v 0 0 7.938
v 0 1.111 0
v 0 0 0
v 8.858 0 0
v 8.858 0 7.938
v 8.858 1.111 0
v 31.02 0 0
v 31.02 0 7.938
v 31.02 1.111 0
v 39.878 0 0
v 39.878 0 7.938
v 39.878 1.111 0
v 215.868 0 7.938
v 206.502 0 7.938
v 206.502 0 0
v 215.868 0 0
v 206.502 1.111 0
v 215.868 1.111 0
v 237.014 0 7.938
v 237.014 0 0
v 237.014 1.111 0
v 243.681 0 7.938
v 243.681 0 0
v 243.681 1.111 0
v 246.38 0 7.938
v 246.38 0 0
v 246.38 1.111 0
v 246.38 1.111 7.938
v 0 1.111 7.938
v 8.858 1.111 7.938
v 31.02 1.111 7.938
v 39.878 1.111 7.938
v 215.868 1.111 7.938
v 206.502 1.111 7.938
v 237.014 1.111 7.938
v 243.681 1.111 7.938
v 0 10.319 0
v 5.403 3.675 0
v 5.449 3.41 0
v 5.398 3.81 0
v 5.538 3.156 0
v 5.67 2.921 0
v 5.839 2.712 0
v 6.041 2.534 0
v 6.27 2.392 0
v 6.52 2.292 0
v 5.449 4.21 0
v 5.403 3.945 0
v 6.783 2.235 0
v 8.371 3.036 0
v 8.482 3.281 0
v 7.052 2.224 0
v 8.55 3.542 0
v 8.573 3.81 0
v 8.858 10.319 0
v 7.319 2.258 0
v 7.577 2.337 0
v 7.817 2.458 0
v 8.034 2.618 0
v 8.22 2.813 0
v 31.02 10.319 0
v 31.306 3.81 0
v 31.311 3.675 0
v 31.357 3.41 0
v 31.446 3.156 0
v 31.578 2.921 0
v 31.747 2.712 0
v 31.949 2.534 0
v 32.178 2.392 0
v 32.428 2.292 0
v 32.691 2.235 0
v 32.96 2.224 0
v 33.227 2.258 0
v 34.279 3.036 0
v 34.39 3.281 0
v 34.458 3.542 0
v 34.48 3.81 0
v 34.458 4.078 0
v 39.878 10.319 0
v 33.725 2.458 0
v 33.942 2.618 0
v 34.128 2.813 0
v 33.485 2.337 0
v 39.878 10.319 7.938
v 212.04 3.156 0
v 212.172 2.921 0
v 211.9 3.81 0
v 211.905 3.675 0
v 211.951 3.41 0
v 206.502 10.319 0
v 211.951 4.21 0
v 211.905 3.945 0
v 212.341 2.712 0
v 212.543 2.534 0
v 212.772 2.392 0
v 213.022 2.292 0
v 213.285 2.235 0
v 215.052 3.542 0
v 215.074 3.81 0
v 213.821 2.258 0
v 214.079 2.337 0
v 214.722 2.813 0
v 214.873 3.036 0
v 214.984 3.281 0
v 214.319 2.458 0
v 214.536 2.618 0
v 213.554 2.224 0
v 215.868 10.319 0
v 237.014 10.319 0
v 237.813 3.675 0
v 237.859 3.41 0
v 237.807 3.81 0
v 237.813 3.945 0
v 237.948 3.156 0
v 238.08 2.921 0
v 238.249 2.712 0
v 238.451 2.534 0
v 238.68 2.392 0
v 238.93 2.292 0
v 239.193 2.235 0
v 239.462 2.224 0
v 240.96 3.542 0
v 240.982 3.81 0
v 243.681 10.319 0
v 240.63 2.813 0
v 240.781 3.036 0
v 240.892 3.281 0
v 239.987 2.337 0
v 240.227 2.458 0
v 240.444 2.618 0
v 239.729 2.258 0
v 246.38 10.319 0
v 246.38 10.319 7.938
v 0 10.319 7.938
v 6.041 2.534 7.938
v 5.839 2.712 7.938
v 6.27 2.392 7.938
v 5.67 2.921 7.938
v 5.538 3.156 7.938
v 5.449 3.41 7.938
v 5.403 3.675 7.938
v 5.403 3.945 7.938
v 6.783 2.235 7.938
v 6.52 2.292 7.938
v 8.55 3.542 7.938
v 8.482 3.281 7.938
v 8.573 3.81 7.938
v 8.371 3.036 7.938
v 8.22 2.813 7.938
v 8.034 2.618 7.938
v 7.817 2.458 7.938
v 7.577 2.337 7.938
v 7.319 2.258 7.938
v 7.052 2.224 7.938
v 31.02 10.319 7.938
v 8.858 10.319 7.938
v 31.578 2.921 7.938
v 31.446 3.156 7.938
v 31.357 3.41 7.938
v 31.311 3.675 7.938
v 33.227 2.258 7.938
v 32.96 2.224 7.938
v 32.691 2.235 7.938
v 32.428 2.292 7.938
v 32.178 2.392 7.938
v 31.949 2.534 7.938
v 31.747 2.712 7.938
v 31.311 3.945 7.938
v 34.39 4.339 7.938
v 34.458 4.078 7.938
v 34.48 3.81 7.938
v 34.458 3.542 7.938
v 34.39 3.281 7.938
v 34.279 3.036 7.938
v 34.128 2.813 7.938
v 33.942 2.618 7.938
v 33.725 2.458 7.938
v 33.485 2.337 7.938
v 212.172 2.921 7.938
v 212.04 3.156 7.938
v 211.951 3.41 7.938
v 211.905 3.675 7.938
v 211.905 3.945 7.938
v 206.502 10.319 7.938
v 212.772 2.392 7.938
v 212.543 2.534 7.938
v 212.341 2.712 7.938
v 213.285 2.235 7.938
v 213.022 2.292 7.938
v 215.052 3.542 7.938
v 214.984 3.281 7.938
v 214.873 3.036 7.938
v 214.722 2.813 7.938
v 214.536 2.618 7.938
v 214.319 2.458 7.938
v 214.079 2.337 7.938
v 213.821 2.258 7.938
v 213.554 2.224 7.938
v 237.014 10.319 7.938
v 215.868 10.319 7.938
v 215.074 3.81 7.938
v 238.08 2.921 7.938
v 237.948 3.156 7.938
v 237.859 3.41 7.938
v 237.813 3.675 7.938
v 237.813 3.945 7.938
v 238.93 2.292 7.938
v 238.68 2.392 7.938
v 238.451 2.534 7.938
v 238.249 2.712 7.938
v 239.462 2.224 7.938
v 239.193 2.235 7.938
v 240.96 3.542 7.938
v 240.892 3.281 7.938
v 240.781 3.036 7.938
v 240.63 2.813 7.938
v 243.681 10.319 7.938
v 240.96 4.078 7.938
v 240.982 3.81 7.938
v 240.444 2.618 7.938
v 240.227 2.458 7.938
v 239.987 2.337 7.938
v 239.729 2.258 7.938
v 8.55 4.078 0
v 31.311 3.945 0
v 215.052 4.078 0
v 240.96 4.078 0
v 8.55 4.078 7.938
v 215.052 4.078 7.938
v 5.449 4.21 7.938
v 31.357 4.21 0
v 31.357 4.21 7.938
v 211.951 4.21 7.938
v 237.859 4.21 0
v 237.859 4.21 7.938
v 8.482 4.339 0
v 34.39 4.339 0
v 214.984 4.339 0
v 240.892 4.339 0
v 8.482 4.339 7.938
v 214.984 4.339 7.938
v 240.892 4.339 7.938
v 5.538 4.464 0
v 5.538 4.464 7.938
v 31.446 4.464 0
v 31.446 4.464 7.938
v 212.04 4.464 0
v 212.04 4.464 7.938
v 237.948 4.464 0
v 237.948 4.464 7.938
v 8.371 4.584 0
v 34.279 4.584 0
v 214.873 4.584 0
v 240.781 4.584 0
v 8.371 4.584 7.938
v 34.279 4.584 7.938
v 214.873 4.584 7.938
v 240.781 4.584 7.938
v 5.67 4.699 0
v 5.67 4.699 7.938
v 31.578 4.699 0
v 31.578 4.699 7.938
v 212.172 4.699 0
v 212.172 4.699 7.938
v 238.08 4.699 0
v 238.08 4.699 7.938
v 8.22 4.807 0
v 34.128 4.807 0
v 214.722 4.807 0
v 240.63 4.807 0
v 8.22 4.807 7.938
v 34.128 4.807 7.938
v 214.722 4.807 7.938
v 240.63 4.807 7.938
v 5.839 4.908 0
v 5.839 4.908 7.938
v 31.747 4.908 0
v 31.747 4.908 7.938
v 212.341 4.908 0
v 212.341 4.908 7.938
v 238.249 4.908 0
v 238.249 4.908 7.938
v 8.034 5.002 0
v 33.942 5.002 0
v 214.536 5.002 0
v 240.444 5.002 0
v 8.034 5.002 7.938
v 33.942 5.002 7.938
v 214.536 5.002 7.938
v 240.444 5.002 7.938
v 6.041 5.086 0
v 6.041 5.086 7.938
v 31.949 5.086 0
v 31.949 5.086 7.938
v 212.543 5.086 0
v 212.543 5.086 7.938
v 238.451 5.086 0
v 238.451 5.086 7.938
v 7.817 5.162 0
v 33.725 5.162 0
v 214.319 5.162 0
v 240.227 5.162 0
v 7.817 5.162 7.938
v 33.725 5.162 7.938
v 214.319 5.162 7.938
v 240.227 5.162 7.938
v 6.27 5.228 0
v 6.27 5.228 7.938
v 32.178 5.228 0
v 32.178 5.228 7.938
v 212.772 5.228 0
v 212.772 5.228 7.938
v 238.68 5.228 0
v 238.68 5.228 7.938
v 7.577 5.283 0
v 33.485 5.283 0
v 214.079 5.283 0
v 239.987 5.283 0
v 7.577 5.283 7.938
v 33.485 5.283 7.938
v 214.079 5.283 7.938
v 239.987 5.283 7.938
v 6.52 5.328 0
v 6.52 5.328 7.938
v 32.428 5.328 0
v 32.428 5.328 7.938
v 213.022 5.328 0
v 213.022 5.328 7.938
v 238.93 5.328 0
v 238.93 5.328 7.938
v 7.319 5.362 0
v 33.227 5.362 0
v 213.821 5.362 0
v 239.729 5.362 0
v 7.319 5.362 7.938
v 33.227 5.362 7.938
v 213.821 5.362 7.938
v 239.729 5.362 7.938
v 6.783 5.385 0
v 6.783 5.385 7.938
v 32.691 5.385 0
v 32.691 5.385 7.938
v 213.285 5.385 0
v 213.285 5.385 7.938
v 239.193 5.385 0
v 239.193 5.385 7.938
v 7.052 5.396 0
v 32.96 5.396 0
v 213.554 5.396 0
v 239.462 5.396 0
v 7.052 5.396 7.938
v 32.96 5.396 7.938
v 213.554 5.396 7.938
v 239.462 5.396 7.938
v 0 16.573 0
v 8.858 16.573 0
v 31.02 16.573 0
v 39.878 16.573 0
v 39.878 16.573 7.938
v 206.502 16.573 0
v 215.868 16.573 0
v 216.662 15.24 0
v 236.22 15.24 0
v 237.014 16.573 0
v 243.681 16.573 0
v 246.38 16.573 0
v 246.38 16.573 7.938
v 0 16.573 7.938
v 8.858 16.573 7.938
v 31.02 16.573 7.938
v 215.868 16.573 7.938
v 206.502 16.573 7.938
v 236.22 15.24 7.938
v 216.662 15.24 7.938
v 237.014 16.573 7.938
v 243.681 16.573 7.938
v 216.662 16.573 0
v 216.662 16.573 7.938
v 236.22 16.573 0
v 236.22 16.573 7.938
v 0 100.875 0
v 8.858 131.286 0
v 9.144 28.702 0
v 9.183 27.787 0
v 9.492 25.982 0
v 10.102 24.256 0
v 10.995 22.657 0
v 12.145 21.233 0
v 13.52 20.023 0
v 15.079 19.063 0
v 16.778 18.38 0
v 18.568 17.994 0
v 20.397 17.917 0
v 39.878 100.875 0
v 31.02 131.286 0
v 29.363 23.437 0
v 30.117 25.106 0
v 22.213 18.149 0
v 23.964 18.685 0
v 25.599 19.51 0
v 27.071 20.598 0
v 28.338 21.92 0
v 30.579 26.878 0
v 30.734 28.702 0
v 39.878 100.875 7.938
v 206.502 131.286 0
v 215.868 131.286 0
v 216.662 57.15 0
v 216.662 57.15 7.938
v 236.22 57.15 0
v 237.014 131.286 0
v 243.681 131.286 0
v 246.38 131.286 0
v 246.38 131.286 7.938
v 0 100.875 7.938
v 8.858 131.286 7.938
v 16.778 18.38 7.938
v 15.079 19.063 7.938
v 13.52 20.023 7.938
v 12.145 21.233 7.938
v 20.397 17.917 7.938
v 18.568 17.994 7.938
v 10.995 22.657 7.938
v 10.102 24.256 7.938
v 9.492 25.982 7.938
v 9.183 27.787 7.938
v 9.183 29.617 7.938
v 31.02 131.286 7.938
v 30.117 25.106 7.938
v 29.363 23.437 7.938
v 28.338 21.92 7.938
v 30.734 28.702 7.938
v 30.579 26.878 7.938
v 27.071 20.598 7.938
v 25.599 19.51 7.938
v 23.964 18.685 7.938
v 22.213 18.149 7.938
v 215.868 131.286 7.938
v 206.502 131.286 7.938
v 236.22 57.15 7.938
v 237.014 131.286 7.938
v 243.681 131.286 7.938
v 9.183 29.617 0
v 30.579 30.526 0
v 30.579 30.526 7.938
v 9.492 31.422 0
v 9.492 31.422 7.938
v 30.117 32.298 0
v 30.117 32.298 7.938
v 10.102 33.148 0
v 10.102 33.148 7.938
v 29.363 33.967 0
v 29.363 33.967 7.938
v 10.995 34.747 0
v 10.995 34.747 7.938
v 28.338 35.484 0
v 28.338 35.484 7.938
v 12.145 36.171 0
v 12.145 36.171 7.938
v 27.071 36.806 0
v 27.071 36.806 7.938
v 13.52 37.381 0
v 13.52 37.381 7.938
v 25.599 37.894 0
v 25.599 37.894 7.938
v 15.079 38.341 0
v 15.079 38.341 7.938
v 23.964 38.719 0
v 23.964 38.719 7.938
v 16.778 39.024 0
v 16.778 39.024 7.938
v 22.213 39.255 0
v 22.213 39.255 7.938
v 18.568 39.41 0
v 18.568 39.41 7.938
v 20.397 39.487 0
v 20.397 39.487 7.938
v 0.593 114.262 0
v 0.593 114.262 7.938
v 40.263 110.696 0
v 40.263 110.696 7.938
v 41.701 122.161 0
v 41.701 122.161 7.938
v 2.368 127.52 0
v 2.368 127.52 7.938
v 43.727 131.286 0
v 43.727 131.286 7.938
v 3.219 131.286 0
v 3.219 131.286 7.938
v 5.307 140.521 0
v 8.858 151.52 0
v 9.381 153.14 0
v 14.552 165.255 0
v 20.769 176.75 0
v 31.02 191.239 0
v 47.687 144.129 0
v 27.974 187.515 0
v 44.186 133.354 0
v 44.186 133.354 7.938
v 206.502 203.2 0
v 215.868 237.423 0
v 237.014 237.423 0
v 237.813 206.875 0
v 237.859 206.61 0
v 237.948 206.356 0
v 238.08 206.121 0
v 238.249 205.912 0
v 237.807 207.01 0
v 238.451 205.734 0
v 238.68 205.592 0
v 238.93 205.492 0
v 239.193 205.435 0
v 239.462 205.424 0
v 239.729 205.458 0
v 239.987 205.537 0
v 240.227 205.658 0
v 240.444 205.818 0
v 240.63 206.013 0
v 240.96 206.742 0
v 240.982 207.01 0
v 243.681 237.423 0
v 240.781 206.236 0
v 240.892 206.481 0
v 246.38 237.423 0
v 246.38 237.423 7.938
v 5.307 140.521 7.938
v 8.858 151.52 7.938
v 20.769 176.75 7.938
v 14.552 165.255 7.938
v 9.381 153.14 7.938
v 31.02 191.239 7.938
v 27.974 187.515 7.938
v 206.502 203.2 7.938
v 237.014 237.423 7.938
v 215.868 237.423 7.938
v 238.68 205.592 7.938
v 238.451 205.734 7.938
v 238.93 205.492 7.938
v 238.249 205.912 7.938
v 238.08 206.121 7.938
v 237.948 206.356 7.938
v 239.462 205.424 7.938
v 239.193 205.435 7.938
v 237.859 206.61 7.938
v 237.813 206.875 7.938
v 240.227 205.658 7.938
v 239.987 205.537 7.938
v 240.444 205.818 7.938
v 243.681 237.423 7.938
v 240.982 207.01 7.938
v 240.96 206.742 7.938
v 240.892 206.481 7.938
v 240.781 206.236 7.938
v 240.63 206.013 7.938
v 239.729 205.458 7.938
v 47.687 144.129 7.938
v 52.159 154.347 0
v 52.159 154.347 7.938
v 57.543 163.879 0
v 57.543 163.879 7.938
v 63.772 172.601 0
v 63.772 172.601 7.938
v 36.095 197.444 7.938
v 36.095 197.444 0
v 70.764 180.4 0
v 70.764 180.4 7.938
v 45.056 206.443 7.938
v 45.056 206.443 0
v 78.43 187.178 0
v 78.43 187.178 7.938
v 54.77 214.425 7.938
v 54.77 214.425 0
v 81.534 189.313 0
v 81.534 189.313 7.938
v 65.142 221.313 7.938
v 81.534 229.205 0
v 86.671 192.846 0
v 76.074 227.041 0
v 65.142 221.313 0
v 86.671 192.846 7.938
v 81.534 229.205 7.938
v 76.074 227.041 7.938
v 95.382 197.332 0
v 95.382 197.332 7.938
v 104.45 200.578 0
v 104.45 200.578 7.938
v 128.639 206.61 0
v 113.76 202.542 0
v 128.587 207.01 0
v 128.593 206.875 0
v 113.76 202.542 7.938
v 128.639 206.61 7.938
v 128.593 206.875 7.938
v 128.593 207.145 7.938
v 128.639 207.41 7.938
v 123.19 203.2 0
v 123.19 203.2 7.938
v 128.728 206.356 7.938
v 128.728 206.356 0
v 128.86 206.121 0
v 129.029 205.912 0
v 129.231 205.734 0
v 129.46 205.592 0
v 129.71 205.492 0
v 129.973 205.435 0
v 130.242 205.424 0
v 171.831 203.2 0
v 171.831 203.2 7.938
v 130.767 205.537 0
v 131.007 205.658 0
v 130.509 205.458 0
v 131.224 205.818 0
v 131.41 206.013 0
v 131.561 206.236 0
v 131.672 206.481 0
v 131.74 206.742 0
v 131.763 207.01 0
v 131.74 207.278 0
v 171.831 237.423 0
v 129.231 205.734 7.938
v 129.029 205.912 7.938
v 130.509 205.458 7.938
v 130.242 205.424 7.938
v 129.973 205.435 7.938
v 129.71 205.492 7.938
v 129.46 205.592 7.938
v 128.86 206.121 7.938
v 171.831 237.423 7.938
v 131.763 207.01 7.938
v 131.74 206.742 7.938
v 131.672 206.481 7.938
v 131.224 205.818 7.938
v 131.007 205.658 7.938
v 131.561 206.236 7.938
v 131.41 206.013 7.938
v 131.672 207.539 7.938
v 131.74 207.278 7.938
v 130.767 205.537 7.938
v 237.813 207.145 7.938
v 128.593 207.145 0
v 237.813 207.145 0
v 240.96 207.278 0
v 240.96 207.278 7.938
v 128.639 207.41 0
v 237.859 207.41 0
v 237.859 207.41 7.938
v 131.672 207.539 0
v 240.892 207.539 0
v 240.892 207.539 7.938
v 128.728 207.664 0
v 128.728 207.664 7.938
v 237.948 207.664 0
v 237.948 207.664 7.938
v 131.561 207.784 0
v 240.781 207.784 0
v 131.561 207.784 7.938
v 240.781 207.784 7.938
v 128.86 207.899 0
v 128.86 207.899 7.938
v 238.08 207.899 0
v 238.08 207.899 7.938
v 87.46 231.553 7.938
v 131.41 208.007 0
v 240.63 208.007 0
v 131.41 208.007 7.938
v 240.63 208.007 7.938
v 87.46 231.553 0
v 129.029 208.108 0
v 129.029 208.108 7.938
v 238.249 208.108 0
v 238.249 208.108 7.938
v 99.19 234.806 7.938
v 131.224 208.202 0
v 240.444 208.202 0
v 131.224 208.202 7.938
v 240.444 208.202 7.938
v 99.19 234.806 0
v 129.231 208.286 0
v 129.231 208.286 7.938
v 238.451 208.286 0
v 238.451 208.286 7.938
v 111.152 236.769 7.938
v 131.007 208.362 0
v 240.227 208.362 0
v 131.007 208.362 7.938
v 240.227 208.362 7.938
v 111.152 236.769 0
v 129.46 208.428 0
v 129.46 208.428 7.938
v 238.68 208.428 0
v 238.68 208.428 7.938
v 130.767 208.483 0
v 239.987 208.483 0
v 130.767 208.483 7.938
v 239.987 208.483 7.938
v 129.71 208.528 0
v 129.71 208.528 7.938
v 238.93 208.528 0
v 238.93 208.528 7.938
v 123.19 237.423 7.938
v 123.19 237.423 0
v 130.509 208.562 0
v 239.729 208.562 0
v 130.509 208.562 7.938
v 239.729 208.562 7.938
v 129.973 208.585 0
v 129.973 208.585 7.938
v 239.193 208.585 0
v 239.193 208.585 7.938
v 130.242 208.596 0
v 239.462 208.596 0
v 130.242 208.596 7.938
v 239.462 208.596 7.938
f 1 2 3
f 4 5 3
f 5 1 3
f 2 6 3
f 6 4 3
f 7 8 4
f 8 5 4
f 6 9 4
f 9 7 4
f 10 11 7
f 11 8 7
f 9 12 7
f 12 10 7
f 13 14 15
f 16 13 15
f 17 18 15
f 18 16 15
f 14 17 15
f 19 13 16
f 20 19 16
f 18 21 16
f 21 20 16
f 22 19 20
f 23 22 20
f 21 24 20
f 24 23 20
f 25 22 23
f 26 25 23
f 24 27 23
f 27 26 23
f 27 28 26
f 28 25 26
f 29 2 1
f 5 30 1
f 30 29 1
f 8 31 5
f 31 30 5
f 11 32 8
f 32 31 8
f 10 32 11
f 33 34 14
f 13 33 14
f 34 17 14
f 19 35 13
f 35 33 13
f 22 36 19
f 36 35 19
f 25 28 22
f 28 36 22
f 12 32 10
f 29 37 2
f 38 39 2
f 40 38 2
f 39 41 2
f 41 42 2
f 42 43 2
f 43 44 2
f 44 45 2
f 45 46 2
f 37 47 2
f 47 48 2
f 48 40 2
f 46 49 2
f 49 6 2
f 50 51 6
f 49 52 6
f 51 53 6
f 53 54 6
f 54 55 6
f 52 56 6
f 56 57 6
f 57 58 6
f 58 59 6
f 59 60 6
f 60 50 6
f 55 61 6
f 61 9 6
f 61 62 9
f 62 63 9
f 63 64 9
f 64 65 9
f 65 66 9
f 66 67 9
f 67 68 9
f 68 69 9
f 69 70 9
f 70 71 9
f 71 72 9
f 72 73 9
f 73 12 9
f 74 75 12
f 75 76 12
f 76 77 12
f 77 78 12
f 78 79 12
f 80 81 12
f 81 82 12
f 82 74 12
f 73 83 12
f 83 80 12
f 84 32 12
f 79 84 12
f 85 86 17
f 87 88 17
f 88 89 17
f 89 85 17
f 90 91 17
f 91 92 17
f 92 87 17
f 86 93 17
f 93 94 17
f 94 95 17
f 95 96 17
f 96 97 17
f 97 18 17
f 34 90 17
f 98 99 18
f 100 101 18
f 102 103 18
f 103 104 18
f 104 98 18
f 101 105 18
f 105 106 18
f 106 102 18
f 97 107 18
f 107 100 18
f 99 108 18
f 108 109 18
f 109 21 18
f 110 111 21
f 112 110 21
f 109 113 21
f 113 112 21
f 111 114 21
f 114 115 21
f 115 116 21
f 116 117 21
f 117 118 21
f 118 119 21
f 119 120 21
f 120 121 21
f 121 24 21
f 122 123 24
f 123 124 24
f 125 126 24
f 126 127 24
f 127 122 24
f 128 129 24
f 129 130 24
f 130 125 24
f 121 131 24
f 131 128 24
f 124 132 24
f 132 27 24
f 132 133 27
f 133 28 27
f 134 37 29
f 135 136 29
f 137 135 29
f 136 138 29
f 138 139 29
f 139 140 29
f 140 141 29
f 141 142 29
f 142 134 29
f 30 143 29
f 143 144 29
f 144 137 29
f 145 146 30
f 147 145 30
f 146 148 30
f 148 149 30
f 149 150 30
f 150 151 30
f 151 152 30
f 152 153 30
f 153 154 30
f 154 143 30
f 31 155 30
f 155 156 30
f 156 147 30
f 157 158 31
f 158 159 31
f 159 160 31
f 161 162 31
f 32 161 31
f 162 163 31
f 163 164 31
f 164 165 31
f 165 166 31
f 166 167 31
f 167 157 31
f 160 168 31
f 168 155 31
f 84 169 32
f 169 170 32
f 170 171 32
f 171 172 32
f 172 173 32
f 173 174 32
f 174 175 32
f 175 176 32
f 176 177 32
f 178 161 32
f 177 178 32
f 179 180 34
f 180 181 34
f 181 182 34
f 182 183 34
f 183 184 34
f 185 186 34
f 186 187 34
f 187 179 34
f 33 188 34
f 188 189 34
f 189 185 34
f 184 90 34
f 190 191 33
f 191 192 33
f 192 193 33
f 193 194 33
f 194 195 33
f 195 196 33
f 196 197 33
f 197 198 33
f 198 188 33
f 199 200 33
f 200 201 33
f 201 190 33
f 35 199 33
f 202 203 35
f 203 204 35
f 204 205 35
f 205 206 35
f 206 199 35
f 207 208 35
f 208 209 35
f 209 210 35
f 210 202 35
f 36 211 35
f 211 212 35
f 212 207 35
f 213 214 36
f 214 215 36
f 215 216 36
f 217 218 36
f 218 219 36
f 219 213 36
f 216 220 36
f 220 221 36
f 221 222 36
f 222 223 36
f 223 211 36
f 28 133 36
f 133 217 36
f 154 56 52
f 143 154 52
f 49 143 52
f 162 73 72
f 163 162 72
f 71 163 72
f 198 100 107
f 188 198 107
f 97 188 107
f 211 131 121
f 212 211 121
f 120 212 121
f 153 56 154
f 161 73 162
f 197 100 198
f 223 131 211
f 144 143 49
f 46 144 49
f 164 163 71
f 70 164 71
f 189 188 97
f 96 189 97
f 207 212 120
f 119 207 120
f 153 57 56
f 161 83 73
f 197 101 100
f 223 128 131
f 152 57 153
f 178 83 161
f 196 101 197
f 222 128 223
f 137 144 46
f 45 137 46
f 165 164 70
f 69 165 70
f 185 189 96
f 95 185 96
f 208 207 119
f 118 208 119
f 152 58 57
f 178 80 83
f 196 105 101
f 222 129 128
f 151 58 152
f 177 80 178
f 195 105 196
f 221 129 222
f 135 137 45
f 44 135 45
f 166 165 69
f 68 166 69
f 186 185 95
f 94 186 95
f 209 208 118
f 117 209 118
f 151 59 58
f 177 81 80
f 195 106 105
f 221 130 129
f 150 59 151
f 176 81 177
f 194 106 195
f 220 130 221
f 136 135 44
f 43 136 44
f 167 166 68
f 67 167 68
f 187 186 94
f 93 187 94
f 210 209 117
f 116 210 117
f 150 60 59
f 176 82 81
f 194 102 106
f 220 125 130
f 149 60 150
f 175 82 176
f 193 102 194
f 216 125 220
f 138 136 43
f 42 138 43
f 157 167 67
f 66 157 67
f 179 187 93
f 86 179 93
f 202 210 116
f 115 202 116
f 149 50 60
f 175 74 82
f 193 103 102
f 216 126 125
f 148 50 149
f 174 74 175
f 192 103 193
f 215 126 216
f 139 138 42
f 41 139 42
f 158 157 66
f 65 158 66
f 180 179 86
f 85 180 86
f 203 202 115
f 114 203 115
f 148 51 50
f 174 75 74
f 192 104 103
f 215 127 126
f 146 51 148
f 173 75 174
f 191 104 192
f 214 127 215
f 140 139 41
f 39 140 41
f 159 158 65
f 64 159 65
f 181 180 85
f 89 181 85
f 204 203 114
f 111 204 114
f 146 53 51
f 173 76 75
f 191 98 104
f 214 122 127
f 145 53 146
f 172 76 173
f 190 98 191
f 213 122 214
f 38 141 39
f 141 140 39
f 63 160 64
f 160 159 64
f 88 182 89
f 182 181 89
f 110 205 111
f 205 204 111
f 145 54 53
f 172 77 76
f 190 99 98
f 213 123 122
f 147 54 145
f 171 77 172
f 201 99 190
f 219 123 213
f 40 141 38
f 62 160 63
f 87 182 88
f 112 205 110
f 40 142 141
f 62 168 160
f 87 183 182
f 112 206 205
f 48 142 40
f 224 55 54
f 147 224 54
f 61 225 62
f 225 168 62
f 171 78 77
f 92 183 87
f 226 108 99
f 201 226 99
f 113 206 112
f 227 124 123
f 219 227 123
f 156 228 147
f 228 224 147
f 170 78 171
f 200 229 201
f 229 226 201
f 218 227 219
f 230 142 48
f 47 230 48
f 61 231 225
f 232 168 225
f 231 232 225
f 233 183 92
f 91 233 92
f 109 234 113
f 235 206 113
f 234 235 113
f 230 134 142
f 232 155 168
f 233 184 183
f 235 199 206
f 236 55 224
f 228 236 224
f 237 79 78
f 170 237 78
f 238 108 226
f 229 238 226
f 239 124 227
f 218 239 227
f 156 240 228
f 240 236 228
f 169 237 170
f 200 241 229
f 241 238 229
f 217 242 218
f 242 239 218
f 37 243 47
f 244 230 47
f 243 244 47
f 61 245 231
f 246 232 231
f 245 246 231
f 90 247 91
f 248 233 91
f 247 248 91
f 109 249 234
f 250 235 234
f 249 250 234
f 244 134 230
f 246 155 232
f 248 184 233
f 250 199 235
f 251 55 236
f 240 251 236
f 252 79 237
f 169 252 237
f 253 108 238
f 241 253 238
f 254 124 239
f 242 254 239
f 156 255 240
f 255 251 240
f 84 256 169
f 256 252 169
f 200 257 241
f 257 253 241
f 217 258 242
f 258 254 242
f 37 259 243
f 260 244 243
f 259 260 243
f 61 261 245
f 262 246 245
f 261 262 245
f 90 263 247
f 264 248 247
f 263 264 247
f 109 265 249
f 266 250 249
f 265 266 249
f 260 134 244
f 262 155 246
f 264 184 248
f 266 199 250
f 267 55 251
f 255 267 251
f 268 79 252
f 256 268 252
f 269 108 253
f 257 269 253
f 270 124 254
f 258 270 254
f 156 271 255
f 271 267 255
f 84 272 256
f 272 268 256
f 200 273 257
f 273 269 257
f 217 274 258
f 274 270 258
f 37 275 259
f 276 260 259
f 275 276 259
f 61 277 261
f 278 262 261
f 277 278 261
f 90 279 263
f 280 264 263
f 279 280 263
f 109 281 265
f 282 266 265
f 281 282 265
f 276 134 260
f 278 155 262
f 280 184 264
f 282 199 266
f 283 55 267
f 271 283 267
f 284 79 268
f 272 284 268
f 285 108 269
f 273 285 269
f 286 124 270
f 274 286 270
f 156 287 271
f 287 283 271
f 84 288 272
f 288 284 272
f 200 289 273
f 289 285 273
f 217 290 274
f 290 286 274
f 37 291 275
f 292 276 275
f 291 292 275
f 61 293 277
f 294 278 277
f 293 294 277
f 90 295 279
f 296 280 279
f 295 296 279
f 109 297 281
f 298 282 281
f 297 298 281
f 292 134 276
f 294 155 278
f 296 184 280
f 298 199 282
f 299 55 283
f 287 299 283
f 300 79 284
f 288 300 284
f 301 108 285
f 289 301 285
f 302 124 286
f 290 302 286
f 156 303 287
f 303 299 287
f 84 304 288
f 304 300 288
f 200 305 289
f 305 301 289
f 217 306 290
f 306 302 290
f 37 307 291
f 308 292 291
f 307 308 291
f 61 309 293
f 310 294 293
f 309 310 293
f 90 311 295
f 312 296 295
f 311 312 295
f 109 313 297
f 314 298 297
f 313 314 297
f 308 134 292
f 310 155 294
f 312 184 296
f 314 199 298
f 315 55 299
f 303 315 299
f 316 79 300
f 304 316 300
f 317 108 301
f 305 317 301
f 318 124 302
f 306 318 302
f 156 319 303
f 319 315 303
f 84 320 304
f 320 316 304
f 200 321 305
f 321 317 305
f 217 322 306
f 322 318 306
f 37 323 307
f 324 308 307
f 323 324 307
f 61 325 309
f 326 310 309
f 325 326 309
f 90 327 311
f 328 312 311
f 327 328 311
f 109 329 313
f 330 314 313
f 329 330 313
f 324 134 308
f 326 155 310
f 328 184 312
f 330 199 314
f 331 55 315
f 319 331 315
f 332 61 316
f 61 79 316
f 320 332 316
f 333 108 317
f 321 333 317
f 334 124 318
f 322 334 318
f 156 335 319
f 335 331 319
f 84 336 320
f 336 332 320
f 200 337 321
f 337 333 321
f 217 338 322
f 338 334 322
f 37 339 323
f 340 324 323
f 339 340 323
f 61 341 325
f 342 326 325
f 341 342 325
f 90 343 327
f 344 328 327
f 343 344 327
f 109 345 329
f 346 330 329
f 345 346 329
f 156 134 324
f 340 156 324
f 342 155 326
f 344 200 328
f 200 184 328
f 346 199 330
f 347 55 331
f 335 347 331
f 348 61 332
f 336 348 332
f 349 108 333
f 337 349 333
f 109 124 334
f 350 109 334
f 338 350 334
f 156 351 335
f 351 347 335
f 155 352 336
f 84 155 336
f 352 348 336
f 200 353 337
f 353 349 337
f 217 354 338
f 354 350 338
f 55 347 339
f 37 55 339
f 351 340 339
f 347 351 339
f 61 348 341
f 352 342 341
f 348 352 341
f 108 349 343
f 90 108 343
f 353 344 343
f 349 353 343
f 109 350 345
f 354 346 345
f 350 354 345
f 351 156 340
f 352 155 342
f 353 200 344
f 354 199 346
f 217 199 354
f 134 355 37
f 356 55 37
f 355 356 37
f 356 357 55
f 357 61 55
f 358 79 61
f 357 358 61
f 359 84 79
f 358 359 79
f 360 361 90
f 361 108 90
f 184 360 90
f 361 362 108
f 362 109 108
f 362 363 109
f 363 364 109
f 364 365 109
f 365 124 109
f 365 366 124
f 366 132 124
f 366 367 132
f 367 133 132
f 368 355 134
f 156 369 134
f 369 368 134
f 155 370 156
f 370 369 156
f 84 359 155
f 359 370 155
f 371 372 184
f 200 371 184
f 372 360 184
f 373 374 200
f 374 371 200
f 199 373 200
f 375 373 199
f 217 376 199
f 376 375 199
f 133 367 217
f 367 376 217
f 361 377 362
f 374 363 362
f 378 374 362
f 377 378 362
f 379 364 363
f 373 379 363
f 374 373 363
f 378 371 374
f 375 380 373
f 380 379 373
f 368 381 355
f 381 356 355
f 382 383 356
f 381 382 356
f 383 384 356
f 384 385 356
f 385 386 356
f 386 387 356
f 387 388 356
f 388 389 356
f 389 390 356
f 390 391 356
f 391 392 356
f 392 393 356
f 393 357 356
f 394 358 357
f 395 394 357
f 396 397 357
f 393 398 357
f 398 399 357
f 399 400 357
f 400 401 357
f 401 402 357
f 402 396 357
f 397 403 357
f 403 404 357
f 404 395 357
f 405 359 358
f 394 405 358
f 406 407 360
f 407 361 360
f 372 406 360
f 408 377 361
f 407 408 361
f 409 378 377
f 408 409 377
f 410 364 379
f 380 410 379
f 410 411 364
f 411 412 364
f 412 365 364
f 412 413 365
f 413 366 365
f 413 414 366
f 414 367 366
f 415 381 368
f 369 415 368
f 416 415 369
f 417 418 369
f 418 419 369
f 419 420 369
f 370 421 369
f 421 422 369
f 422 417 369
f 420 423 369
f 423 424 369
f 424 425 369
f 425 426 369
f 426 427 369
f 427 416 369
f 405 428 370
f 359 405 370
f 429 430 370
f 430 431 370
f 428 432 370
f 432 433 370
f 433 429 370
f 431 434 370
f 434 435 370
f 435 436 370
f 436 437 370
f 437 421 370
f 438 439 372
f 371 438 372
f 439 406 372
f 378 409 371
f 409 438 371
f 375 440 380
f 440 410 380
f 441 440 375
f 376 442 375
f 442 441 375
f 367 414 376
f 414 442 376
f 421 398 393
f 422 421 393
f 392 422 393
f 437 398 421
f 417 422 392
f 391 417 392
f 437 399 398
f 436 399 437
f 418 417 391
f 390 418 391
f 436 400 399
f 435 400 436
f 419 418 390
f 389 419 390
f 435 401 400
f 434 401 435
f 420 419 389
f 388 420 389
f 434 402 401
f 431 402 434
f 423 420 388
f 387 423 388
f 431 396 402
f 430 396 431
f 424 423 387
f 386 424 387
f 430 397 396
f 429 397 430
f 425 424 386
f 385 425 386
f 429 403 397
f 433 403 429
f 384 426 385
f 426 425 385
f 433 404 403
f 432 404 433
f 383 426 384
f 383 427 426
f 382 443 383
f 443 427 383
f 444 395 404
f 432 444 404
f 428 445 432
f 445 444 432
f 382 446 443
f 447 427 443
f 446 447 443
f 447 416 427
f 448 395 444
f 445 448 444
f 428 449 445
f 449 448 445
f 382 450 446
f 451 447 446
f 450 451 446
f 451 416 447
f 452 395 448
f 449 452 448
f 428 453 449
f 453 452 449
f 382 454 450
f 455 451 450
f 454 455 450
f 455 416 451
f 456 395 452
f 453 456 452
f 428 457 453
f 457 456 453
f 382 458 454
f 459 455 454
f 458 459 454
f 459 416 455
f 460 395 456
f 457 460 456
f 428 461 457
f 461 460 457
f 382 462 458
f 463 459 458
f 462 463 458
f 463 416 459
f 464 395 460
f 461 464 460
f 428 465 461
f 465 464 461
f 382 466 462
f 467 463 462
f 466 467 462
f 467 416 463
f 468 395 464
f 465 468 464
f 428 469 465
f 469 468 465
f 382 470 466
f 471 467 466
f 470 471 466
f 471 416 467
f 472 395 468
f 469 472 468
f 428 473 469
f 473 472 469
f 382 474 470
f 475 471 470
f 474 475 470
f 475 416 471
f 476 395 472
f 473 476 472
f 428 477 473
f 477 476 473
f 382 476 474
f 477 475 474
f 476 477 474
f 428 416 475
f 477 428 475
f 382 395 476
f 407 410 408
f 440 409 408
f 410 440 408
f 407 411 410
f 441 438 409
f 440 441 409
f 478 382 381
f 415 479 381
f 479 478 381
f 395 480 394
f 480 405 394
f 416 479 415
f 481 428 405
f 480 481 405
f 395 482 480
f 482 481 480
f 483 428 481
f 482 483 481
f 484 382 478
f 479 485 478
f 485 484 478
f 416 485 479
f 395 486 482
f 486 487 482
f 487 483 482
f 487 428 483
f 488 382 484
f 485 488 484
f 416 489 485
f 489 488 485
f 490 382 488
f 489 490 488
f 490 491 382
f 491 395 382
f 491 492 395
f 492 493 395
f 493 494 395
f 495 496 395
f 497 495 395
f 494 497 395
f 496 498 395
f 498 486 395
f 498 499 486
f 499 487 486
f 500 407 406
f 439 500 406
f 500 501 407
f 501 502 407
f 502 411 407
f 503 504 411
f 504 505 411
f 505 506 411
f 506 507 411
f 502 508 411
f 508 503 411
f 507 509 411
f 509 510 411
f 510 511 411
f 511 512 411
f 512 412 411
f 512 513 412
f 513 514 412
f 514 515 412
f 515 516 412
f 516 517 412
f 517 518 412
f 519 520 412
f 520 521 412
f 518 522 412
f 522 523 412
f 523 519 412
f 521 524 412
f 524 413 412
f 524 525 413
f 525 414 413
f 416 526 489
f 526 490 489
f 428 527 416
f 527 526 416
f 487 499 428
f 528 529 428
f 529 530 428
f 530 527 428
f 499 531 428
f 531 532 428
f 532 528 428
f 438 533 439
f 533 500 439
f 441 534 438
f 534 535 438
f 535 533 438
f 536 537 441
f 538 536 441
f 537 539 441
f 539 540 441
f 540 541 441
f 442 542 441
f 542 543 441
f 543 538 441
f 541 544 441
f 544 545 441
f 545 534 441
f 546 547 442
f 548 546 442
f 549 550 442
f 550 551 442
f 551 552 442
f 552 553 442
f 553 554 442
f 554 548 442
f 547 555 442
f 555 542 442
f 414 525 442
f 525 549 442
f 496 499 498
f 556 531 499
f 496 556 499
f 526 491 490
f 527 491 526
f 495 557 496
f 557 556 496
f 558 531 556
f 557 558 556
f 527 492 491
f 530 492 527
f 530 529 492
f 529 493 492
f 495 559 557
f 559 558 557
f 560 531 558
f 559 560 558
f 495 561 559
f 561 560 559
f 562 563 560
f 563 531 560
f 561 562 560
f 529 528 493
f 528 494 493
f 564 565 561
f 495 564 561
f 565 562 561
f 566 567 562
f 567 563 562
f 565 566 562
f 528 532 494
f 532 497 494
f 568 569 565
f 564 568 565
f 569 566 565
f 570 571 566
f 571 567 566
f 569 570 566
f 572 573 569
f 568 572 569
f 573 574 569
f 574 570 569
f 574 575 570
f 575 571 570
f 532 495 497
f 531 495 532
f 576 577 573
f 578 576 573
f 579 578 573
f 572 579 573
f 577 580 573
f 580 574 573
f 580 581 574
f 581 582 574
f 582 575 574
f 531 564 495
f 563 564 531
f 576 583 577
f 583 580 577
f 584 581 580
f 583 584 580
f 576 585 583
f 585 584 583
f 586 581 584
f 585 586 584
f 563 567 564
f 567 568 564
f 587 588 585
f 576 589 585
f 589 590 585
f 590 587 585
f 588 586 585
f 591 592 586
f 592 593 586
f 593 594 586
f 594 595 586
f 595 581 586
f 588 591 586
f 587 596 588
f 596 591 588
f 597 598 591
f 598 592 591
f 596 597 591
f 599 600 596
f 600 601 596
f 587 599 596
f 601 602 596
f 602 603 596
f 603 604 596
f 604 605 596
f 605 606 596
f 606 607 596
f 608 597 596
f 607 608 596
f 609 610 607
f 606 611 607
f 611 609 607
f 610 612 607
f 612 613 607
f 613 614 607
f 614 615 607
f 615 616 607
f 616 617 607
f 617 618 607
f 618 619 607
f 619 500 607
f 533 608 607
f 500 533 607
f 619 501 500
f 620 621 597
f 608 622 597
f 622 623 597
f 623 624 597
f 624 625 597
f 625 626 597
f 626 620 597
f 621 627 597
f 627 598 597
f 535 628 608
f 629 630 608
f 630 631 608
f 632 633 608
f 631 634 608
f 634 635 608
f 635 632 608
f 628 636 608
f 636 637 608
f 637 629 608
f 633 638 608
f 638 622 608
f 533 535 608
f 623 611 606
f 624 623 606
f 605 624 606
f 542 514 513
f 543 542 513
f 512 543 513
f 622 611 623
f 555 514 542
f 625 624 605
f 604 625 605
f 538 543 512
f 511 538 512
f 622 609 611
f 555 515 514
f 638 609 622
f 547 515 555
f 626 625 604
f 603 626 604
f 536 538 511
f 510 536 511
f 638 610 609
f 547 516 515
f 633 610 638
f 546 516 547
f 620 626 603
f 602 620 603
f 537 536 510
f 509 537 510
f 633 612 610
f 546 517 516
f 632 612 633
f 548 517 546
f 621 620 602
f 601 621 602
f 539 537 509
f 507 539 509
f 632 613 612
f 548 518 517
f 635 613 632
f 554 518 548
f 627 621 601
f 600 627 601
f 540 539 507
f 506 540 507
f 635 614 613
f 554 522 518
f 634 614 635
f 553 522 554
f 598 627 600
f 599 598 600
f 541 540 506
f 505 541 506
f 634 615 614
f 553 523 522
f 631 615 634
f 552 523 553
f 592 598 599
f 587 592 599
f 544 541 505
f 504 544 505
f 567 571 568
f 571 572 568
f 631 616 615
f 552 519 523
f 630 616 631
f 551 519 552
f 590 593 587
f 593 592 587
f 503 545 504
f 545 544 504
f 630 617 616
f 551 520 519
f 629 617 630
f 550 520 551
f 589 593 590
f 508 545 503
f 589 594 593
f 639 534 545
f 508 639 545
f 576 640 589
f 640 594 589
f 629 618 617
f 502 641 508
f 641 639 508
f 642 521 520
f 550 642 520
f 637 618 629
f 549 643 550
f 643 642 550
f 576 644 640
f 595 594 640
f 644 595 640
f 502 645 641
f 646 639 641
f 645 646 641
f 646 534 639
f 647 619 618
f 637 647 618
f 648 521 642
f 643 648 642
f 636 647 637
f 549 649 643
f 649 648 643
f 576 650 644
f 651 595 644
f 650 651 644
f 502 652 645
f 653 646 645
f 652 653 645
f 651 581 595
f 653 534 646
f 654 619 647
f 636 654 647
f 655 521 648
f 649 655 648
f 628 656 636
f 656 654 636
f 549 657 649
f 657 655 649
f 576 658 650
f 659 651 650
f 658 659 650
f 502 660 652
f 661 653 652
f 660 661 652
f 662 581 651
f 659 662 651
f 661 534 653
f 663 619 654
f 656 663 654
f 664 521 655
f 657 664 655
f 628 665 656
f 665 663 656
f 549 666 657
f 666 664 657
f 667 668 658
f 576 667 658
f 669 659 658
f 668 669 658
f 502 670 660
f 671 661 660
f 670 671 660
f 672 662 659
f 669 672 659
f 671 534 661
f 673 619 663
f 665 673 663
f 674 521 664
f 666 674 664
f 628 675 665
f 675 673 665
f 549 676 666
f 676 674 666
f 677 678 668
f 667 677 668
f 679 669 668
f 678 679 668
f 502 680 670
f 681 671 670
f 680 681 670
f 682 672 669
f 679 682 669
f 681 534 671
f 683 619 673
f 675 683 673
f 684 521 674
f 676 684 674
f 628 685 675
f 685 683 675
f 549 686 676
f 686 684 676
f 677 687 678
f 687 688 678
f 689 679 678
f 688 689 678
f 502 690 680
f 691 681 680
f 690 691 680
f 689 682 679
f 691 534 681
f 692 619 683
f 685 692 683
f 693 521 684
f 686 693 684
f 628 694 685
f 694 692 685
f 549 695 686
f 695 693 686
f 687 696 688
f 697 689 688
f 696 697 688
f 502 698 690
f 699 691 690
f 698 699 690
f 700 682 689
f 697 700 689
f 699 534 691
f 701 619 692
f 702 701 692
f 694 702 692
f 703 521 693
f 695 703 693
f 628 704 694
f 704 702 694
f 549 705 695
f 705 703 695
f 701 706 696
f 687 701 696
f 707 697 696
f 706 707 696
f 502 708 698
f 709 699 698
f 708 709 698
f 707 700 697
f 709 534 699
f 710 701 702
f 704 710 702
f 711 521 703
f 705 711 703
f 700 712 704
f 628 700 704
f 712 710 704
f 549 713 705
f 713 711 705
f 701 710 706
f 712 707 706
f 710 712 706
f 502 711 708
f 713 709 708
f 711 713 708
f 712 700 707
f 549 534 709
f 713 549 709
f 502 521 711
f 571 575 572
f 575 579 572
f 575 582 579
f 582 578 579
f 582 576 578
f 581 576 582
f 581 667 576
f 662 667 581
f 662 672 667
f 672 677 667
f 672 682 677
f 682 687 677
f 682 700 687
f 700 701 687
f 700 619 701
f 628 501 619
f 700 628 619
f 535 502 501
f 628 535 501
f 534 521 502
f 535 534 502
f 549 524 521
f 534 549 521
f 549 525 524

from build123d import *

# Parameters (mm, degrees)
SKETCH2_W           = 246.38
SKETCH2_H           = 254
BOSS_EXTRUDE1_DEPTH = 7.9375
CUT_EXTRUDE2_REACH  = 9.938
SCREW_HOLES_REACH   = 9.938
SKETCH4_R           = 1.5875
CUT_EXTRUDE4_REACH  = 9.938
SKETCH5_R           = 10.795
CUT_EXTRUDE5_REACH  = 9.938
SKETCH6_W           = 19.558
SKETCH6_H           = 41.91


with BuildPart() as part:
    # Sketch2 → Boss-Extrude1 (new body)
    with BuildSketch(Plane.XY):
        with Locations((123.19, 127)):
            Rectangle(SKETCH2_W, SKETCH2_H)
    extrude(amount=BOSS_EXTRUDE1_DEPTH)

    # Sketch3 → Cut-Extrude2 (cut, up to next)
    with BuildSketch(Plane.XY.offset(7.9375), mode=Mode.PRIVATE) as cut_extrude2_sk1:
        with BuildLine():
            Line((0, 254), (0, 100.875137361))
            add(Edge.make_bspline(
                [(123.19, 237.422544345), (0, 237.422544345), (0, 100.875137361)],
                knots=[0, 0, 0, 1.570796327, 1.570796327, 1.570796327], degree=2, weights=[1, 0.707106781, 1]))
            Line((123.19, 237.422544345), (246.38, 237.422544345))
            Line((246.38, 237.422544345), (246.38, 254))
            Line((246.38, 254), (0, 254))
        make_face()
    cut_extrude2_tool1 = extrude(cut_extrude2_sk1.sketch, amount=-CUT_EXTRUDE2_REACH, mode=Mode.PRIVATE) & part.part
    add(cut_extrude2_tool1.solids().sort_by_distance((2.900868, 177.437569, 7.9375))[0], mode=Mode.SUBTRACT)
    # Sketch3 → Cut-Extrude2 (cut, up to next)
    with BuildSketch(Plane.XY.offset(7.9375), mode=Mode.PRIVATE) as cut_extrude2_sk2:
        with BuildLine():
            Line((39.878, 0), (39.878, 100.875137361))
            add(Edge.make_bspline(
                [(123.19, 203.2), (39.878, 203.2), (39.878, 100.875137361)],
                knots=[0, 0, 0, 1.570796327, 1.570796327, 1.570796327], degree=2, weights=[1, 0.707106781, 1]))
            Line((123.19, 203.2), (206.502, 203.2))
            Line((206.502, 203.2), (206.502, 160.284632983))
            Line((206.502, 160.284632983), (206.502, 0))
            Line((206.502, 0), (39.878, 0))
        make_face()
    cut_extrude2_tool2 = extrude(cut_extrude2_sk2.sketch, amount=-CUT_EXTRUDE2_REACH, mode=Mode.PRIVATE) & part.part
    add(cut_extrude2_tool2.solids().sort_by_distance((126.885795, 97.102181, 7.9375))[0], mode=Mode.SUBTRACT)

    # Sketch4 → screw holes (cut, up to next)
    with BuildSketch(Plane.XY.offset(7.9375), mode=Mode.PRIVATE) as screw_holes_sk1:
        with Locations((6.985, 3.81)):
            Circle(SKETCH4_R)
    screw_holes_tool1 = extrude(screw_holes_sk1.sketch, amount=-SCREW_HOLES_REACH, mode=Mode.PRIVATE) & part.part
    add(screw_holes_tool1.solids().sort_by_distance((6.985, 3.81, 7.9375))[0], mode=Mode.SUBTRACT)
    # Sketch4 → screw holes (cut, up to next)
    with BuildSketch(Plane.XY.offset(7.9375), mode=Mode.PRIVATE) as screw_holes_sk2:
        with Locations((32.893, 3.81)):
            Circle(SKETCH4_R)
    screw_holes_tool2 = extrude(screw_holes_sk2.sketch, amount=-SCREW_HOLES_REACH, mode=Mode.PRIVATE) & part.part
    add(screw_holes_tool2.solids().sort_by_distance((32.893, 3.81, 7.9375))[0], mode=Mode.SUBTRACT)
    # Sketch4 → screw holes (cut, up to next)
    with BuildSketch(Plane.XY.offset(7.9375), mode=Mode.PRIVATE) as screw_holes_sk3:
        with Locations((213.487, 3.81)):
            Circle(SKETCH4_R)
    screw_holes_tool3 = extrude(screw_holes_sk3.sketch, amount=-SCREW_HOLES_REACH, mode=Mode.PRIVATE) & part.part
    add(screw_holes_tool3.solids().sort_by_distance((213.487, 3.81, 7.9375))[0], mode=Mode.SUBTRACT)
    # Sketch4 → screw holes (cut, up to next)
    with BuildSketch(Plane.XY.offset(7.9375), mode=Mode.PRIVATE) as screw_holes_sk4:
        with Locations((239.395, 3.81)):
            Circle(SKETCH4_R)
    screw_holes_tool4 = extrude(screw_holes_sk4.sketch, amount=-SCREW_HOLES_REACH, mode=Mode.PRIVATE) & part.part
    add(screw_holes_tool4.solids().sort_by_distance((239.395, 3.81, 7.9375))[0], mode=Mode.SUBTRACT)
    # Sketch4 → screw holes (cut, up to next)
    with BuildSketch(Plane.XY.offset(7.9375), mode=Mode.PRIVATE) as screw_holes_sk5:
        with Locations((130.175, 207.01)):
            Circle(SKETCH4_R)
    screw_holes_tool5 = extrude(screw_holes_sk5.sketch, amount=-SCREW_HOLES_REACH, mode=Mode.PRIVATE) & part.part
    add(screw_holes_tool5.solids().sort_by_distance((130.175, 207.01, 7.9375))[0], mode=Mode.SUBTRACT)
    # Sketch4 → screw holes (cut, up to next)
    with BuildSketch(Plane.XY.offset(7.9375), mode=Mode.PRIVATE) as screw_holes_sk6:
        with Locations((239.395, 207.01)):
            Circle(SKETCH4_R)
    screw_holes_tool6 = extrude(screw_holes_sk6.sketch, amount=-SCREW_HOLES_REACH, mode=Mode.PRIVATE) & part.part
    add(screw_holes_tool6.solids().sort_by_distance((239.395, 207.01, 7.9375))[0], mode=Mode.SUBTRACT)

    # Sketch5 → Cut-Extrude4 (cut, up to next)
    with BuildSketch(Plane.XY.offset(7.9375), mode=Mode.PRIVATE) as cut_extrude4_sk1:
        with Locations((19.939, 28.702)):
            Circle(SKETCH5_R)
    cut_extrude4_tool1 = extrude(cut_extrude4_sk1.sketch, amount=-CUT_EXTRUDE4_REACH, mode=Mode.PRIVATE) & part.part
    add(cut_extrude4_tool1.solids().sort_by_distance((19.939, 28.702, 7.9375))[0], mode=Mode.SUBTRACT)

    # Sketch6 → Cut-Extrude5 (cut, up to next)
    with BuildSketch(Plane.XY.offset(7.9375), mode=Mode.PRIVATE) as cut_extrude5_sk1:
        with Locations((226.441, 36.195)):
            Rectangle(SKETCH6_W, SKETCH6_H)
    cut_extrude5_tool1 = extrude(cut_extrude5_sk1.sketch, amount=-CUT_EXTRUDE5_REACH, mode=Mode.PRIVATE) & part.part
    add(cut_extrude5_tool1.solids().sort_by_distance((226.441, 36.195, 7.9375))[0], mode=Mode.SUBTRACT)


solid = part.part
